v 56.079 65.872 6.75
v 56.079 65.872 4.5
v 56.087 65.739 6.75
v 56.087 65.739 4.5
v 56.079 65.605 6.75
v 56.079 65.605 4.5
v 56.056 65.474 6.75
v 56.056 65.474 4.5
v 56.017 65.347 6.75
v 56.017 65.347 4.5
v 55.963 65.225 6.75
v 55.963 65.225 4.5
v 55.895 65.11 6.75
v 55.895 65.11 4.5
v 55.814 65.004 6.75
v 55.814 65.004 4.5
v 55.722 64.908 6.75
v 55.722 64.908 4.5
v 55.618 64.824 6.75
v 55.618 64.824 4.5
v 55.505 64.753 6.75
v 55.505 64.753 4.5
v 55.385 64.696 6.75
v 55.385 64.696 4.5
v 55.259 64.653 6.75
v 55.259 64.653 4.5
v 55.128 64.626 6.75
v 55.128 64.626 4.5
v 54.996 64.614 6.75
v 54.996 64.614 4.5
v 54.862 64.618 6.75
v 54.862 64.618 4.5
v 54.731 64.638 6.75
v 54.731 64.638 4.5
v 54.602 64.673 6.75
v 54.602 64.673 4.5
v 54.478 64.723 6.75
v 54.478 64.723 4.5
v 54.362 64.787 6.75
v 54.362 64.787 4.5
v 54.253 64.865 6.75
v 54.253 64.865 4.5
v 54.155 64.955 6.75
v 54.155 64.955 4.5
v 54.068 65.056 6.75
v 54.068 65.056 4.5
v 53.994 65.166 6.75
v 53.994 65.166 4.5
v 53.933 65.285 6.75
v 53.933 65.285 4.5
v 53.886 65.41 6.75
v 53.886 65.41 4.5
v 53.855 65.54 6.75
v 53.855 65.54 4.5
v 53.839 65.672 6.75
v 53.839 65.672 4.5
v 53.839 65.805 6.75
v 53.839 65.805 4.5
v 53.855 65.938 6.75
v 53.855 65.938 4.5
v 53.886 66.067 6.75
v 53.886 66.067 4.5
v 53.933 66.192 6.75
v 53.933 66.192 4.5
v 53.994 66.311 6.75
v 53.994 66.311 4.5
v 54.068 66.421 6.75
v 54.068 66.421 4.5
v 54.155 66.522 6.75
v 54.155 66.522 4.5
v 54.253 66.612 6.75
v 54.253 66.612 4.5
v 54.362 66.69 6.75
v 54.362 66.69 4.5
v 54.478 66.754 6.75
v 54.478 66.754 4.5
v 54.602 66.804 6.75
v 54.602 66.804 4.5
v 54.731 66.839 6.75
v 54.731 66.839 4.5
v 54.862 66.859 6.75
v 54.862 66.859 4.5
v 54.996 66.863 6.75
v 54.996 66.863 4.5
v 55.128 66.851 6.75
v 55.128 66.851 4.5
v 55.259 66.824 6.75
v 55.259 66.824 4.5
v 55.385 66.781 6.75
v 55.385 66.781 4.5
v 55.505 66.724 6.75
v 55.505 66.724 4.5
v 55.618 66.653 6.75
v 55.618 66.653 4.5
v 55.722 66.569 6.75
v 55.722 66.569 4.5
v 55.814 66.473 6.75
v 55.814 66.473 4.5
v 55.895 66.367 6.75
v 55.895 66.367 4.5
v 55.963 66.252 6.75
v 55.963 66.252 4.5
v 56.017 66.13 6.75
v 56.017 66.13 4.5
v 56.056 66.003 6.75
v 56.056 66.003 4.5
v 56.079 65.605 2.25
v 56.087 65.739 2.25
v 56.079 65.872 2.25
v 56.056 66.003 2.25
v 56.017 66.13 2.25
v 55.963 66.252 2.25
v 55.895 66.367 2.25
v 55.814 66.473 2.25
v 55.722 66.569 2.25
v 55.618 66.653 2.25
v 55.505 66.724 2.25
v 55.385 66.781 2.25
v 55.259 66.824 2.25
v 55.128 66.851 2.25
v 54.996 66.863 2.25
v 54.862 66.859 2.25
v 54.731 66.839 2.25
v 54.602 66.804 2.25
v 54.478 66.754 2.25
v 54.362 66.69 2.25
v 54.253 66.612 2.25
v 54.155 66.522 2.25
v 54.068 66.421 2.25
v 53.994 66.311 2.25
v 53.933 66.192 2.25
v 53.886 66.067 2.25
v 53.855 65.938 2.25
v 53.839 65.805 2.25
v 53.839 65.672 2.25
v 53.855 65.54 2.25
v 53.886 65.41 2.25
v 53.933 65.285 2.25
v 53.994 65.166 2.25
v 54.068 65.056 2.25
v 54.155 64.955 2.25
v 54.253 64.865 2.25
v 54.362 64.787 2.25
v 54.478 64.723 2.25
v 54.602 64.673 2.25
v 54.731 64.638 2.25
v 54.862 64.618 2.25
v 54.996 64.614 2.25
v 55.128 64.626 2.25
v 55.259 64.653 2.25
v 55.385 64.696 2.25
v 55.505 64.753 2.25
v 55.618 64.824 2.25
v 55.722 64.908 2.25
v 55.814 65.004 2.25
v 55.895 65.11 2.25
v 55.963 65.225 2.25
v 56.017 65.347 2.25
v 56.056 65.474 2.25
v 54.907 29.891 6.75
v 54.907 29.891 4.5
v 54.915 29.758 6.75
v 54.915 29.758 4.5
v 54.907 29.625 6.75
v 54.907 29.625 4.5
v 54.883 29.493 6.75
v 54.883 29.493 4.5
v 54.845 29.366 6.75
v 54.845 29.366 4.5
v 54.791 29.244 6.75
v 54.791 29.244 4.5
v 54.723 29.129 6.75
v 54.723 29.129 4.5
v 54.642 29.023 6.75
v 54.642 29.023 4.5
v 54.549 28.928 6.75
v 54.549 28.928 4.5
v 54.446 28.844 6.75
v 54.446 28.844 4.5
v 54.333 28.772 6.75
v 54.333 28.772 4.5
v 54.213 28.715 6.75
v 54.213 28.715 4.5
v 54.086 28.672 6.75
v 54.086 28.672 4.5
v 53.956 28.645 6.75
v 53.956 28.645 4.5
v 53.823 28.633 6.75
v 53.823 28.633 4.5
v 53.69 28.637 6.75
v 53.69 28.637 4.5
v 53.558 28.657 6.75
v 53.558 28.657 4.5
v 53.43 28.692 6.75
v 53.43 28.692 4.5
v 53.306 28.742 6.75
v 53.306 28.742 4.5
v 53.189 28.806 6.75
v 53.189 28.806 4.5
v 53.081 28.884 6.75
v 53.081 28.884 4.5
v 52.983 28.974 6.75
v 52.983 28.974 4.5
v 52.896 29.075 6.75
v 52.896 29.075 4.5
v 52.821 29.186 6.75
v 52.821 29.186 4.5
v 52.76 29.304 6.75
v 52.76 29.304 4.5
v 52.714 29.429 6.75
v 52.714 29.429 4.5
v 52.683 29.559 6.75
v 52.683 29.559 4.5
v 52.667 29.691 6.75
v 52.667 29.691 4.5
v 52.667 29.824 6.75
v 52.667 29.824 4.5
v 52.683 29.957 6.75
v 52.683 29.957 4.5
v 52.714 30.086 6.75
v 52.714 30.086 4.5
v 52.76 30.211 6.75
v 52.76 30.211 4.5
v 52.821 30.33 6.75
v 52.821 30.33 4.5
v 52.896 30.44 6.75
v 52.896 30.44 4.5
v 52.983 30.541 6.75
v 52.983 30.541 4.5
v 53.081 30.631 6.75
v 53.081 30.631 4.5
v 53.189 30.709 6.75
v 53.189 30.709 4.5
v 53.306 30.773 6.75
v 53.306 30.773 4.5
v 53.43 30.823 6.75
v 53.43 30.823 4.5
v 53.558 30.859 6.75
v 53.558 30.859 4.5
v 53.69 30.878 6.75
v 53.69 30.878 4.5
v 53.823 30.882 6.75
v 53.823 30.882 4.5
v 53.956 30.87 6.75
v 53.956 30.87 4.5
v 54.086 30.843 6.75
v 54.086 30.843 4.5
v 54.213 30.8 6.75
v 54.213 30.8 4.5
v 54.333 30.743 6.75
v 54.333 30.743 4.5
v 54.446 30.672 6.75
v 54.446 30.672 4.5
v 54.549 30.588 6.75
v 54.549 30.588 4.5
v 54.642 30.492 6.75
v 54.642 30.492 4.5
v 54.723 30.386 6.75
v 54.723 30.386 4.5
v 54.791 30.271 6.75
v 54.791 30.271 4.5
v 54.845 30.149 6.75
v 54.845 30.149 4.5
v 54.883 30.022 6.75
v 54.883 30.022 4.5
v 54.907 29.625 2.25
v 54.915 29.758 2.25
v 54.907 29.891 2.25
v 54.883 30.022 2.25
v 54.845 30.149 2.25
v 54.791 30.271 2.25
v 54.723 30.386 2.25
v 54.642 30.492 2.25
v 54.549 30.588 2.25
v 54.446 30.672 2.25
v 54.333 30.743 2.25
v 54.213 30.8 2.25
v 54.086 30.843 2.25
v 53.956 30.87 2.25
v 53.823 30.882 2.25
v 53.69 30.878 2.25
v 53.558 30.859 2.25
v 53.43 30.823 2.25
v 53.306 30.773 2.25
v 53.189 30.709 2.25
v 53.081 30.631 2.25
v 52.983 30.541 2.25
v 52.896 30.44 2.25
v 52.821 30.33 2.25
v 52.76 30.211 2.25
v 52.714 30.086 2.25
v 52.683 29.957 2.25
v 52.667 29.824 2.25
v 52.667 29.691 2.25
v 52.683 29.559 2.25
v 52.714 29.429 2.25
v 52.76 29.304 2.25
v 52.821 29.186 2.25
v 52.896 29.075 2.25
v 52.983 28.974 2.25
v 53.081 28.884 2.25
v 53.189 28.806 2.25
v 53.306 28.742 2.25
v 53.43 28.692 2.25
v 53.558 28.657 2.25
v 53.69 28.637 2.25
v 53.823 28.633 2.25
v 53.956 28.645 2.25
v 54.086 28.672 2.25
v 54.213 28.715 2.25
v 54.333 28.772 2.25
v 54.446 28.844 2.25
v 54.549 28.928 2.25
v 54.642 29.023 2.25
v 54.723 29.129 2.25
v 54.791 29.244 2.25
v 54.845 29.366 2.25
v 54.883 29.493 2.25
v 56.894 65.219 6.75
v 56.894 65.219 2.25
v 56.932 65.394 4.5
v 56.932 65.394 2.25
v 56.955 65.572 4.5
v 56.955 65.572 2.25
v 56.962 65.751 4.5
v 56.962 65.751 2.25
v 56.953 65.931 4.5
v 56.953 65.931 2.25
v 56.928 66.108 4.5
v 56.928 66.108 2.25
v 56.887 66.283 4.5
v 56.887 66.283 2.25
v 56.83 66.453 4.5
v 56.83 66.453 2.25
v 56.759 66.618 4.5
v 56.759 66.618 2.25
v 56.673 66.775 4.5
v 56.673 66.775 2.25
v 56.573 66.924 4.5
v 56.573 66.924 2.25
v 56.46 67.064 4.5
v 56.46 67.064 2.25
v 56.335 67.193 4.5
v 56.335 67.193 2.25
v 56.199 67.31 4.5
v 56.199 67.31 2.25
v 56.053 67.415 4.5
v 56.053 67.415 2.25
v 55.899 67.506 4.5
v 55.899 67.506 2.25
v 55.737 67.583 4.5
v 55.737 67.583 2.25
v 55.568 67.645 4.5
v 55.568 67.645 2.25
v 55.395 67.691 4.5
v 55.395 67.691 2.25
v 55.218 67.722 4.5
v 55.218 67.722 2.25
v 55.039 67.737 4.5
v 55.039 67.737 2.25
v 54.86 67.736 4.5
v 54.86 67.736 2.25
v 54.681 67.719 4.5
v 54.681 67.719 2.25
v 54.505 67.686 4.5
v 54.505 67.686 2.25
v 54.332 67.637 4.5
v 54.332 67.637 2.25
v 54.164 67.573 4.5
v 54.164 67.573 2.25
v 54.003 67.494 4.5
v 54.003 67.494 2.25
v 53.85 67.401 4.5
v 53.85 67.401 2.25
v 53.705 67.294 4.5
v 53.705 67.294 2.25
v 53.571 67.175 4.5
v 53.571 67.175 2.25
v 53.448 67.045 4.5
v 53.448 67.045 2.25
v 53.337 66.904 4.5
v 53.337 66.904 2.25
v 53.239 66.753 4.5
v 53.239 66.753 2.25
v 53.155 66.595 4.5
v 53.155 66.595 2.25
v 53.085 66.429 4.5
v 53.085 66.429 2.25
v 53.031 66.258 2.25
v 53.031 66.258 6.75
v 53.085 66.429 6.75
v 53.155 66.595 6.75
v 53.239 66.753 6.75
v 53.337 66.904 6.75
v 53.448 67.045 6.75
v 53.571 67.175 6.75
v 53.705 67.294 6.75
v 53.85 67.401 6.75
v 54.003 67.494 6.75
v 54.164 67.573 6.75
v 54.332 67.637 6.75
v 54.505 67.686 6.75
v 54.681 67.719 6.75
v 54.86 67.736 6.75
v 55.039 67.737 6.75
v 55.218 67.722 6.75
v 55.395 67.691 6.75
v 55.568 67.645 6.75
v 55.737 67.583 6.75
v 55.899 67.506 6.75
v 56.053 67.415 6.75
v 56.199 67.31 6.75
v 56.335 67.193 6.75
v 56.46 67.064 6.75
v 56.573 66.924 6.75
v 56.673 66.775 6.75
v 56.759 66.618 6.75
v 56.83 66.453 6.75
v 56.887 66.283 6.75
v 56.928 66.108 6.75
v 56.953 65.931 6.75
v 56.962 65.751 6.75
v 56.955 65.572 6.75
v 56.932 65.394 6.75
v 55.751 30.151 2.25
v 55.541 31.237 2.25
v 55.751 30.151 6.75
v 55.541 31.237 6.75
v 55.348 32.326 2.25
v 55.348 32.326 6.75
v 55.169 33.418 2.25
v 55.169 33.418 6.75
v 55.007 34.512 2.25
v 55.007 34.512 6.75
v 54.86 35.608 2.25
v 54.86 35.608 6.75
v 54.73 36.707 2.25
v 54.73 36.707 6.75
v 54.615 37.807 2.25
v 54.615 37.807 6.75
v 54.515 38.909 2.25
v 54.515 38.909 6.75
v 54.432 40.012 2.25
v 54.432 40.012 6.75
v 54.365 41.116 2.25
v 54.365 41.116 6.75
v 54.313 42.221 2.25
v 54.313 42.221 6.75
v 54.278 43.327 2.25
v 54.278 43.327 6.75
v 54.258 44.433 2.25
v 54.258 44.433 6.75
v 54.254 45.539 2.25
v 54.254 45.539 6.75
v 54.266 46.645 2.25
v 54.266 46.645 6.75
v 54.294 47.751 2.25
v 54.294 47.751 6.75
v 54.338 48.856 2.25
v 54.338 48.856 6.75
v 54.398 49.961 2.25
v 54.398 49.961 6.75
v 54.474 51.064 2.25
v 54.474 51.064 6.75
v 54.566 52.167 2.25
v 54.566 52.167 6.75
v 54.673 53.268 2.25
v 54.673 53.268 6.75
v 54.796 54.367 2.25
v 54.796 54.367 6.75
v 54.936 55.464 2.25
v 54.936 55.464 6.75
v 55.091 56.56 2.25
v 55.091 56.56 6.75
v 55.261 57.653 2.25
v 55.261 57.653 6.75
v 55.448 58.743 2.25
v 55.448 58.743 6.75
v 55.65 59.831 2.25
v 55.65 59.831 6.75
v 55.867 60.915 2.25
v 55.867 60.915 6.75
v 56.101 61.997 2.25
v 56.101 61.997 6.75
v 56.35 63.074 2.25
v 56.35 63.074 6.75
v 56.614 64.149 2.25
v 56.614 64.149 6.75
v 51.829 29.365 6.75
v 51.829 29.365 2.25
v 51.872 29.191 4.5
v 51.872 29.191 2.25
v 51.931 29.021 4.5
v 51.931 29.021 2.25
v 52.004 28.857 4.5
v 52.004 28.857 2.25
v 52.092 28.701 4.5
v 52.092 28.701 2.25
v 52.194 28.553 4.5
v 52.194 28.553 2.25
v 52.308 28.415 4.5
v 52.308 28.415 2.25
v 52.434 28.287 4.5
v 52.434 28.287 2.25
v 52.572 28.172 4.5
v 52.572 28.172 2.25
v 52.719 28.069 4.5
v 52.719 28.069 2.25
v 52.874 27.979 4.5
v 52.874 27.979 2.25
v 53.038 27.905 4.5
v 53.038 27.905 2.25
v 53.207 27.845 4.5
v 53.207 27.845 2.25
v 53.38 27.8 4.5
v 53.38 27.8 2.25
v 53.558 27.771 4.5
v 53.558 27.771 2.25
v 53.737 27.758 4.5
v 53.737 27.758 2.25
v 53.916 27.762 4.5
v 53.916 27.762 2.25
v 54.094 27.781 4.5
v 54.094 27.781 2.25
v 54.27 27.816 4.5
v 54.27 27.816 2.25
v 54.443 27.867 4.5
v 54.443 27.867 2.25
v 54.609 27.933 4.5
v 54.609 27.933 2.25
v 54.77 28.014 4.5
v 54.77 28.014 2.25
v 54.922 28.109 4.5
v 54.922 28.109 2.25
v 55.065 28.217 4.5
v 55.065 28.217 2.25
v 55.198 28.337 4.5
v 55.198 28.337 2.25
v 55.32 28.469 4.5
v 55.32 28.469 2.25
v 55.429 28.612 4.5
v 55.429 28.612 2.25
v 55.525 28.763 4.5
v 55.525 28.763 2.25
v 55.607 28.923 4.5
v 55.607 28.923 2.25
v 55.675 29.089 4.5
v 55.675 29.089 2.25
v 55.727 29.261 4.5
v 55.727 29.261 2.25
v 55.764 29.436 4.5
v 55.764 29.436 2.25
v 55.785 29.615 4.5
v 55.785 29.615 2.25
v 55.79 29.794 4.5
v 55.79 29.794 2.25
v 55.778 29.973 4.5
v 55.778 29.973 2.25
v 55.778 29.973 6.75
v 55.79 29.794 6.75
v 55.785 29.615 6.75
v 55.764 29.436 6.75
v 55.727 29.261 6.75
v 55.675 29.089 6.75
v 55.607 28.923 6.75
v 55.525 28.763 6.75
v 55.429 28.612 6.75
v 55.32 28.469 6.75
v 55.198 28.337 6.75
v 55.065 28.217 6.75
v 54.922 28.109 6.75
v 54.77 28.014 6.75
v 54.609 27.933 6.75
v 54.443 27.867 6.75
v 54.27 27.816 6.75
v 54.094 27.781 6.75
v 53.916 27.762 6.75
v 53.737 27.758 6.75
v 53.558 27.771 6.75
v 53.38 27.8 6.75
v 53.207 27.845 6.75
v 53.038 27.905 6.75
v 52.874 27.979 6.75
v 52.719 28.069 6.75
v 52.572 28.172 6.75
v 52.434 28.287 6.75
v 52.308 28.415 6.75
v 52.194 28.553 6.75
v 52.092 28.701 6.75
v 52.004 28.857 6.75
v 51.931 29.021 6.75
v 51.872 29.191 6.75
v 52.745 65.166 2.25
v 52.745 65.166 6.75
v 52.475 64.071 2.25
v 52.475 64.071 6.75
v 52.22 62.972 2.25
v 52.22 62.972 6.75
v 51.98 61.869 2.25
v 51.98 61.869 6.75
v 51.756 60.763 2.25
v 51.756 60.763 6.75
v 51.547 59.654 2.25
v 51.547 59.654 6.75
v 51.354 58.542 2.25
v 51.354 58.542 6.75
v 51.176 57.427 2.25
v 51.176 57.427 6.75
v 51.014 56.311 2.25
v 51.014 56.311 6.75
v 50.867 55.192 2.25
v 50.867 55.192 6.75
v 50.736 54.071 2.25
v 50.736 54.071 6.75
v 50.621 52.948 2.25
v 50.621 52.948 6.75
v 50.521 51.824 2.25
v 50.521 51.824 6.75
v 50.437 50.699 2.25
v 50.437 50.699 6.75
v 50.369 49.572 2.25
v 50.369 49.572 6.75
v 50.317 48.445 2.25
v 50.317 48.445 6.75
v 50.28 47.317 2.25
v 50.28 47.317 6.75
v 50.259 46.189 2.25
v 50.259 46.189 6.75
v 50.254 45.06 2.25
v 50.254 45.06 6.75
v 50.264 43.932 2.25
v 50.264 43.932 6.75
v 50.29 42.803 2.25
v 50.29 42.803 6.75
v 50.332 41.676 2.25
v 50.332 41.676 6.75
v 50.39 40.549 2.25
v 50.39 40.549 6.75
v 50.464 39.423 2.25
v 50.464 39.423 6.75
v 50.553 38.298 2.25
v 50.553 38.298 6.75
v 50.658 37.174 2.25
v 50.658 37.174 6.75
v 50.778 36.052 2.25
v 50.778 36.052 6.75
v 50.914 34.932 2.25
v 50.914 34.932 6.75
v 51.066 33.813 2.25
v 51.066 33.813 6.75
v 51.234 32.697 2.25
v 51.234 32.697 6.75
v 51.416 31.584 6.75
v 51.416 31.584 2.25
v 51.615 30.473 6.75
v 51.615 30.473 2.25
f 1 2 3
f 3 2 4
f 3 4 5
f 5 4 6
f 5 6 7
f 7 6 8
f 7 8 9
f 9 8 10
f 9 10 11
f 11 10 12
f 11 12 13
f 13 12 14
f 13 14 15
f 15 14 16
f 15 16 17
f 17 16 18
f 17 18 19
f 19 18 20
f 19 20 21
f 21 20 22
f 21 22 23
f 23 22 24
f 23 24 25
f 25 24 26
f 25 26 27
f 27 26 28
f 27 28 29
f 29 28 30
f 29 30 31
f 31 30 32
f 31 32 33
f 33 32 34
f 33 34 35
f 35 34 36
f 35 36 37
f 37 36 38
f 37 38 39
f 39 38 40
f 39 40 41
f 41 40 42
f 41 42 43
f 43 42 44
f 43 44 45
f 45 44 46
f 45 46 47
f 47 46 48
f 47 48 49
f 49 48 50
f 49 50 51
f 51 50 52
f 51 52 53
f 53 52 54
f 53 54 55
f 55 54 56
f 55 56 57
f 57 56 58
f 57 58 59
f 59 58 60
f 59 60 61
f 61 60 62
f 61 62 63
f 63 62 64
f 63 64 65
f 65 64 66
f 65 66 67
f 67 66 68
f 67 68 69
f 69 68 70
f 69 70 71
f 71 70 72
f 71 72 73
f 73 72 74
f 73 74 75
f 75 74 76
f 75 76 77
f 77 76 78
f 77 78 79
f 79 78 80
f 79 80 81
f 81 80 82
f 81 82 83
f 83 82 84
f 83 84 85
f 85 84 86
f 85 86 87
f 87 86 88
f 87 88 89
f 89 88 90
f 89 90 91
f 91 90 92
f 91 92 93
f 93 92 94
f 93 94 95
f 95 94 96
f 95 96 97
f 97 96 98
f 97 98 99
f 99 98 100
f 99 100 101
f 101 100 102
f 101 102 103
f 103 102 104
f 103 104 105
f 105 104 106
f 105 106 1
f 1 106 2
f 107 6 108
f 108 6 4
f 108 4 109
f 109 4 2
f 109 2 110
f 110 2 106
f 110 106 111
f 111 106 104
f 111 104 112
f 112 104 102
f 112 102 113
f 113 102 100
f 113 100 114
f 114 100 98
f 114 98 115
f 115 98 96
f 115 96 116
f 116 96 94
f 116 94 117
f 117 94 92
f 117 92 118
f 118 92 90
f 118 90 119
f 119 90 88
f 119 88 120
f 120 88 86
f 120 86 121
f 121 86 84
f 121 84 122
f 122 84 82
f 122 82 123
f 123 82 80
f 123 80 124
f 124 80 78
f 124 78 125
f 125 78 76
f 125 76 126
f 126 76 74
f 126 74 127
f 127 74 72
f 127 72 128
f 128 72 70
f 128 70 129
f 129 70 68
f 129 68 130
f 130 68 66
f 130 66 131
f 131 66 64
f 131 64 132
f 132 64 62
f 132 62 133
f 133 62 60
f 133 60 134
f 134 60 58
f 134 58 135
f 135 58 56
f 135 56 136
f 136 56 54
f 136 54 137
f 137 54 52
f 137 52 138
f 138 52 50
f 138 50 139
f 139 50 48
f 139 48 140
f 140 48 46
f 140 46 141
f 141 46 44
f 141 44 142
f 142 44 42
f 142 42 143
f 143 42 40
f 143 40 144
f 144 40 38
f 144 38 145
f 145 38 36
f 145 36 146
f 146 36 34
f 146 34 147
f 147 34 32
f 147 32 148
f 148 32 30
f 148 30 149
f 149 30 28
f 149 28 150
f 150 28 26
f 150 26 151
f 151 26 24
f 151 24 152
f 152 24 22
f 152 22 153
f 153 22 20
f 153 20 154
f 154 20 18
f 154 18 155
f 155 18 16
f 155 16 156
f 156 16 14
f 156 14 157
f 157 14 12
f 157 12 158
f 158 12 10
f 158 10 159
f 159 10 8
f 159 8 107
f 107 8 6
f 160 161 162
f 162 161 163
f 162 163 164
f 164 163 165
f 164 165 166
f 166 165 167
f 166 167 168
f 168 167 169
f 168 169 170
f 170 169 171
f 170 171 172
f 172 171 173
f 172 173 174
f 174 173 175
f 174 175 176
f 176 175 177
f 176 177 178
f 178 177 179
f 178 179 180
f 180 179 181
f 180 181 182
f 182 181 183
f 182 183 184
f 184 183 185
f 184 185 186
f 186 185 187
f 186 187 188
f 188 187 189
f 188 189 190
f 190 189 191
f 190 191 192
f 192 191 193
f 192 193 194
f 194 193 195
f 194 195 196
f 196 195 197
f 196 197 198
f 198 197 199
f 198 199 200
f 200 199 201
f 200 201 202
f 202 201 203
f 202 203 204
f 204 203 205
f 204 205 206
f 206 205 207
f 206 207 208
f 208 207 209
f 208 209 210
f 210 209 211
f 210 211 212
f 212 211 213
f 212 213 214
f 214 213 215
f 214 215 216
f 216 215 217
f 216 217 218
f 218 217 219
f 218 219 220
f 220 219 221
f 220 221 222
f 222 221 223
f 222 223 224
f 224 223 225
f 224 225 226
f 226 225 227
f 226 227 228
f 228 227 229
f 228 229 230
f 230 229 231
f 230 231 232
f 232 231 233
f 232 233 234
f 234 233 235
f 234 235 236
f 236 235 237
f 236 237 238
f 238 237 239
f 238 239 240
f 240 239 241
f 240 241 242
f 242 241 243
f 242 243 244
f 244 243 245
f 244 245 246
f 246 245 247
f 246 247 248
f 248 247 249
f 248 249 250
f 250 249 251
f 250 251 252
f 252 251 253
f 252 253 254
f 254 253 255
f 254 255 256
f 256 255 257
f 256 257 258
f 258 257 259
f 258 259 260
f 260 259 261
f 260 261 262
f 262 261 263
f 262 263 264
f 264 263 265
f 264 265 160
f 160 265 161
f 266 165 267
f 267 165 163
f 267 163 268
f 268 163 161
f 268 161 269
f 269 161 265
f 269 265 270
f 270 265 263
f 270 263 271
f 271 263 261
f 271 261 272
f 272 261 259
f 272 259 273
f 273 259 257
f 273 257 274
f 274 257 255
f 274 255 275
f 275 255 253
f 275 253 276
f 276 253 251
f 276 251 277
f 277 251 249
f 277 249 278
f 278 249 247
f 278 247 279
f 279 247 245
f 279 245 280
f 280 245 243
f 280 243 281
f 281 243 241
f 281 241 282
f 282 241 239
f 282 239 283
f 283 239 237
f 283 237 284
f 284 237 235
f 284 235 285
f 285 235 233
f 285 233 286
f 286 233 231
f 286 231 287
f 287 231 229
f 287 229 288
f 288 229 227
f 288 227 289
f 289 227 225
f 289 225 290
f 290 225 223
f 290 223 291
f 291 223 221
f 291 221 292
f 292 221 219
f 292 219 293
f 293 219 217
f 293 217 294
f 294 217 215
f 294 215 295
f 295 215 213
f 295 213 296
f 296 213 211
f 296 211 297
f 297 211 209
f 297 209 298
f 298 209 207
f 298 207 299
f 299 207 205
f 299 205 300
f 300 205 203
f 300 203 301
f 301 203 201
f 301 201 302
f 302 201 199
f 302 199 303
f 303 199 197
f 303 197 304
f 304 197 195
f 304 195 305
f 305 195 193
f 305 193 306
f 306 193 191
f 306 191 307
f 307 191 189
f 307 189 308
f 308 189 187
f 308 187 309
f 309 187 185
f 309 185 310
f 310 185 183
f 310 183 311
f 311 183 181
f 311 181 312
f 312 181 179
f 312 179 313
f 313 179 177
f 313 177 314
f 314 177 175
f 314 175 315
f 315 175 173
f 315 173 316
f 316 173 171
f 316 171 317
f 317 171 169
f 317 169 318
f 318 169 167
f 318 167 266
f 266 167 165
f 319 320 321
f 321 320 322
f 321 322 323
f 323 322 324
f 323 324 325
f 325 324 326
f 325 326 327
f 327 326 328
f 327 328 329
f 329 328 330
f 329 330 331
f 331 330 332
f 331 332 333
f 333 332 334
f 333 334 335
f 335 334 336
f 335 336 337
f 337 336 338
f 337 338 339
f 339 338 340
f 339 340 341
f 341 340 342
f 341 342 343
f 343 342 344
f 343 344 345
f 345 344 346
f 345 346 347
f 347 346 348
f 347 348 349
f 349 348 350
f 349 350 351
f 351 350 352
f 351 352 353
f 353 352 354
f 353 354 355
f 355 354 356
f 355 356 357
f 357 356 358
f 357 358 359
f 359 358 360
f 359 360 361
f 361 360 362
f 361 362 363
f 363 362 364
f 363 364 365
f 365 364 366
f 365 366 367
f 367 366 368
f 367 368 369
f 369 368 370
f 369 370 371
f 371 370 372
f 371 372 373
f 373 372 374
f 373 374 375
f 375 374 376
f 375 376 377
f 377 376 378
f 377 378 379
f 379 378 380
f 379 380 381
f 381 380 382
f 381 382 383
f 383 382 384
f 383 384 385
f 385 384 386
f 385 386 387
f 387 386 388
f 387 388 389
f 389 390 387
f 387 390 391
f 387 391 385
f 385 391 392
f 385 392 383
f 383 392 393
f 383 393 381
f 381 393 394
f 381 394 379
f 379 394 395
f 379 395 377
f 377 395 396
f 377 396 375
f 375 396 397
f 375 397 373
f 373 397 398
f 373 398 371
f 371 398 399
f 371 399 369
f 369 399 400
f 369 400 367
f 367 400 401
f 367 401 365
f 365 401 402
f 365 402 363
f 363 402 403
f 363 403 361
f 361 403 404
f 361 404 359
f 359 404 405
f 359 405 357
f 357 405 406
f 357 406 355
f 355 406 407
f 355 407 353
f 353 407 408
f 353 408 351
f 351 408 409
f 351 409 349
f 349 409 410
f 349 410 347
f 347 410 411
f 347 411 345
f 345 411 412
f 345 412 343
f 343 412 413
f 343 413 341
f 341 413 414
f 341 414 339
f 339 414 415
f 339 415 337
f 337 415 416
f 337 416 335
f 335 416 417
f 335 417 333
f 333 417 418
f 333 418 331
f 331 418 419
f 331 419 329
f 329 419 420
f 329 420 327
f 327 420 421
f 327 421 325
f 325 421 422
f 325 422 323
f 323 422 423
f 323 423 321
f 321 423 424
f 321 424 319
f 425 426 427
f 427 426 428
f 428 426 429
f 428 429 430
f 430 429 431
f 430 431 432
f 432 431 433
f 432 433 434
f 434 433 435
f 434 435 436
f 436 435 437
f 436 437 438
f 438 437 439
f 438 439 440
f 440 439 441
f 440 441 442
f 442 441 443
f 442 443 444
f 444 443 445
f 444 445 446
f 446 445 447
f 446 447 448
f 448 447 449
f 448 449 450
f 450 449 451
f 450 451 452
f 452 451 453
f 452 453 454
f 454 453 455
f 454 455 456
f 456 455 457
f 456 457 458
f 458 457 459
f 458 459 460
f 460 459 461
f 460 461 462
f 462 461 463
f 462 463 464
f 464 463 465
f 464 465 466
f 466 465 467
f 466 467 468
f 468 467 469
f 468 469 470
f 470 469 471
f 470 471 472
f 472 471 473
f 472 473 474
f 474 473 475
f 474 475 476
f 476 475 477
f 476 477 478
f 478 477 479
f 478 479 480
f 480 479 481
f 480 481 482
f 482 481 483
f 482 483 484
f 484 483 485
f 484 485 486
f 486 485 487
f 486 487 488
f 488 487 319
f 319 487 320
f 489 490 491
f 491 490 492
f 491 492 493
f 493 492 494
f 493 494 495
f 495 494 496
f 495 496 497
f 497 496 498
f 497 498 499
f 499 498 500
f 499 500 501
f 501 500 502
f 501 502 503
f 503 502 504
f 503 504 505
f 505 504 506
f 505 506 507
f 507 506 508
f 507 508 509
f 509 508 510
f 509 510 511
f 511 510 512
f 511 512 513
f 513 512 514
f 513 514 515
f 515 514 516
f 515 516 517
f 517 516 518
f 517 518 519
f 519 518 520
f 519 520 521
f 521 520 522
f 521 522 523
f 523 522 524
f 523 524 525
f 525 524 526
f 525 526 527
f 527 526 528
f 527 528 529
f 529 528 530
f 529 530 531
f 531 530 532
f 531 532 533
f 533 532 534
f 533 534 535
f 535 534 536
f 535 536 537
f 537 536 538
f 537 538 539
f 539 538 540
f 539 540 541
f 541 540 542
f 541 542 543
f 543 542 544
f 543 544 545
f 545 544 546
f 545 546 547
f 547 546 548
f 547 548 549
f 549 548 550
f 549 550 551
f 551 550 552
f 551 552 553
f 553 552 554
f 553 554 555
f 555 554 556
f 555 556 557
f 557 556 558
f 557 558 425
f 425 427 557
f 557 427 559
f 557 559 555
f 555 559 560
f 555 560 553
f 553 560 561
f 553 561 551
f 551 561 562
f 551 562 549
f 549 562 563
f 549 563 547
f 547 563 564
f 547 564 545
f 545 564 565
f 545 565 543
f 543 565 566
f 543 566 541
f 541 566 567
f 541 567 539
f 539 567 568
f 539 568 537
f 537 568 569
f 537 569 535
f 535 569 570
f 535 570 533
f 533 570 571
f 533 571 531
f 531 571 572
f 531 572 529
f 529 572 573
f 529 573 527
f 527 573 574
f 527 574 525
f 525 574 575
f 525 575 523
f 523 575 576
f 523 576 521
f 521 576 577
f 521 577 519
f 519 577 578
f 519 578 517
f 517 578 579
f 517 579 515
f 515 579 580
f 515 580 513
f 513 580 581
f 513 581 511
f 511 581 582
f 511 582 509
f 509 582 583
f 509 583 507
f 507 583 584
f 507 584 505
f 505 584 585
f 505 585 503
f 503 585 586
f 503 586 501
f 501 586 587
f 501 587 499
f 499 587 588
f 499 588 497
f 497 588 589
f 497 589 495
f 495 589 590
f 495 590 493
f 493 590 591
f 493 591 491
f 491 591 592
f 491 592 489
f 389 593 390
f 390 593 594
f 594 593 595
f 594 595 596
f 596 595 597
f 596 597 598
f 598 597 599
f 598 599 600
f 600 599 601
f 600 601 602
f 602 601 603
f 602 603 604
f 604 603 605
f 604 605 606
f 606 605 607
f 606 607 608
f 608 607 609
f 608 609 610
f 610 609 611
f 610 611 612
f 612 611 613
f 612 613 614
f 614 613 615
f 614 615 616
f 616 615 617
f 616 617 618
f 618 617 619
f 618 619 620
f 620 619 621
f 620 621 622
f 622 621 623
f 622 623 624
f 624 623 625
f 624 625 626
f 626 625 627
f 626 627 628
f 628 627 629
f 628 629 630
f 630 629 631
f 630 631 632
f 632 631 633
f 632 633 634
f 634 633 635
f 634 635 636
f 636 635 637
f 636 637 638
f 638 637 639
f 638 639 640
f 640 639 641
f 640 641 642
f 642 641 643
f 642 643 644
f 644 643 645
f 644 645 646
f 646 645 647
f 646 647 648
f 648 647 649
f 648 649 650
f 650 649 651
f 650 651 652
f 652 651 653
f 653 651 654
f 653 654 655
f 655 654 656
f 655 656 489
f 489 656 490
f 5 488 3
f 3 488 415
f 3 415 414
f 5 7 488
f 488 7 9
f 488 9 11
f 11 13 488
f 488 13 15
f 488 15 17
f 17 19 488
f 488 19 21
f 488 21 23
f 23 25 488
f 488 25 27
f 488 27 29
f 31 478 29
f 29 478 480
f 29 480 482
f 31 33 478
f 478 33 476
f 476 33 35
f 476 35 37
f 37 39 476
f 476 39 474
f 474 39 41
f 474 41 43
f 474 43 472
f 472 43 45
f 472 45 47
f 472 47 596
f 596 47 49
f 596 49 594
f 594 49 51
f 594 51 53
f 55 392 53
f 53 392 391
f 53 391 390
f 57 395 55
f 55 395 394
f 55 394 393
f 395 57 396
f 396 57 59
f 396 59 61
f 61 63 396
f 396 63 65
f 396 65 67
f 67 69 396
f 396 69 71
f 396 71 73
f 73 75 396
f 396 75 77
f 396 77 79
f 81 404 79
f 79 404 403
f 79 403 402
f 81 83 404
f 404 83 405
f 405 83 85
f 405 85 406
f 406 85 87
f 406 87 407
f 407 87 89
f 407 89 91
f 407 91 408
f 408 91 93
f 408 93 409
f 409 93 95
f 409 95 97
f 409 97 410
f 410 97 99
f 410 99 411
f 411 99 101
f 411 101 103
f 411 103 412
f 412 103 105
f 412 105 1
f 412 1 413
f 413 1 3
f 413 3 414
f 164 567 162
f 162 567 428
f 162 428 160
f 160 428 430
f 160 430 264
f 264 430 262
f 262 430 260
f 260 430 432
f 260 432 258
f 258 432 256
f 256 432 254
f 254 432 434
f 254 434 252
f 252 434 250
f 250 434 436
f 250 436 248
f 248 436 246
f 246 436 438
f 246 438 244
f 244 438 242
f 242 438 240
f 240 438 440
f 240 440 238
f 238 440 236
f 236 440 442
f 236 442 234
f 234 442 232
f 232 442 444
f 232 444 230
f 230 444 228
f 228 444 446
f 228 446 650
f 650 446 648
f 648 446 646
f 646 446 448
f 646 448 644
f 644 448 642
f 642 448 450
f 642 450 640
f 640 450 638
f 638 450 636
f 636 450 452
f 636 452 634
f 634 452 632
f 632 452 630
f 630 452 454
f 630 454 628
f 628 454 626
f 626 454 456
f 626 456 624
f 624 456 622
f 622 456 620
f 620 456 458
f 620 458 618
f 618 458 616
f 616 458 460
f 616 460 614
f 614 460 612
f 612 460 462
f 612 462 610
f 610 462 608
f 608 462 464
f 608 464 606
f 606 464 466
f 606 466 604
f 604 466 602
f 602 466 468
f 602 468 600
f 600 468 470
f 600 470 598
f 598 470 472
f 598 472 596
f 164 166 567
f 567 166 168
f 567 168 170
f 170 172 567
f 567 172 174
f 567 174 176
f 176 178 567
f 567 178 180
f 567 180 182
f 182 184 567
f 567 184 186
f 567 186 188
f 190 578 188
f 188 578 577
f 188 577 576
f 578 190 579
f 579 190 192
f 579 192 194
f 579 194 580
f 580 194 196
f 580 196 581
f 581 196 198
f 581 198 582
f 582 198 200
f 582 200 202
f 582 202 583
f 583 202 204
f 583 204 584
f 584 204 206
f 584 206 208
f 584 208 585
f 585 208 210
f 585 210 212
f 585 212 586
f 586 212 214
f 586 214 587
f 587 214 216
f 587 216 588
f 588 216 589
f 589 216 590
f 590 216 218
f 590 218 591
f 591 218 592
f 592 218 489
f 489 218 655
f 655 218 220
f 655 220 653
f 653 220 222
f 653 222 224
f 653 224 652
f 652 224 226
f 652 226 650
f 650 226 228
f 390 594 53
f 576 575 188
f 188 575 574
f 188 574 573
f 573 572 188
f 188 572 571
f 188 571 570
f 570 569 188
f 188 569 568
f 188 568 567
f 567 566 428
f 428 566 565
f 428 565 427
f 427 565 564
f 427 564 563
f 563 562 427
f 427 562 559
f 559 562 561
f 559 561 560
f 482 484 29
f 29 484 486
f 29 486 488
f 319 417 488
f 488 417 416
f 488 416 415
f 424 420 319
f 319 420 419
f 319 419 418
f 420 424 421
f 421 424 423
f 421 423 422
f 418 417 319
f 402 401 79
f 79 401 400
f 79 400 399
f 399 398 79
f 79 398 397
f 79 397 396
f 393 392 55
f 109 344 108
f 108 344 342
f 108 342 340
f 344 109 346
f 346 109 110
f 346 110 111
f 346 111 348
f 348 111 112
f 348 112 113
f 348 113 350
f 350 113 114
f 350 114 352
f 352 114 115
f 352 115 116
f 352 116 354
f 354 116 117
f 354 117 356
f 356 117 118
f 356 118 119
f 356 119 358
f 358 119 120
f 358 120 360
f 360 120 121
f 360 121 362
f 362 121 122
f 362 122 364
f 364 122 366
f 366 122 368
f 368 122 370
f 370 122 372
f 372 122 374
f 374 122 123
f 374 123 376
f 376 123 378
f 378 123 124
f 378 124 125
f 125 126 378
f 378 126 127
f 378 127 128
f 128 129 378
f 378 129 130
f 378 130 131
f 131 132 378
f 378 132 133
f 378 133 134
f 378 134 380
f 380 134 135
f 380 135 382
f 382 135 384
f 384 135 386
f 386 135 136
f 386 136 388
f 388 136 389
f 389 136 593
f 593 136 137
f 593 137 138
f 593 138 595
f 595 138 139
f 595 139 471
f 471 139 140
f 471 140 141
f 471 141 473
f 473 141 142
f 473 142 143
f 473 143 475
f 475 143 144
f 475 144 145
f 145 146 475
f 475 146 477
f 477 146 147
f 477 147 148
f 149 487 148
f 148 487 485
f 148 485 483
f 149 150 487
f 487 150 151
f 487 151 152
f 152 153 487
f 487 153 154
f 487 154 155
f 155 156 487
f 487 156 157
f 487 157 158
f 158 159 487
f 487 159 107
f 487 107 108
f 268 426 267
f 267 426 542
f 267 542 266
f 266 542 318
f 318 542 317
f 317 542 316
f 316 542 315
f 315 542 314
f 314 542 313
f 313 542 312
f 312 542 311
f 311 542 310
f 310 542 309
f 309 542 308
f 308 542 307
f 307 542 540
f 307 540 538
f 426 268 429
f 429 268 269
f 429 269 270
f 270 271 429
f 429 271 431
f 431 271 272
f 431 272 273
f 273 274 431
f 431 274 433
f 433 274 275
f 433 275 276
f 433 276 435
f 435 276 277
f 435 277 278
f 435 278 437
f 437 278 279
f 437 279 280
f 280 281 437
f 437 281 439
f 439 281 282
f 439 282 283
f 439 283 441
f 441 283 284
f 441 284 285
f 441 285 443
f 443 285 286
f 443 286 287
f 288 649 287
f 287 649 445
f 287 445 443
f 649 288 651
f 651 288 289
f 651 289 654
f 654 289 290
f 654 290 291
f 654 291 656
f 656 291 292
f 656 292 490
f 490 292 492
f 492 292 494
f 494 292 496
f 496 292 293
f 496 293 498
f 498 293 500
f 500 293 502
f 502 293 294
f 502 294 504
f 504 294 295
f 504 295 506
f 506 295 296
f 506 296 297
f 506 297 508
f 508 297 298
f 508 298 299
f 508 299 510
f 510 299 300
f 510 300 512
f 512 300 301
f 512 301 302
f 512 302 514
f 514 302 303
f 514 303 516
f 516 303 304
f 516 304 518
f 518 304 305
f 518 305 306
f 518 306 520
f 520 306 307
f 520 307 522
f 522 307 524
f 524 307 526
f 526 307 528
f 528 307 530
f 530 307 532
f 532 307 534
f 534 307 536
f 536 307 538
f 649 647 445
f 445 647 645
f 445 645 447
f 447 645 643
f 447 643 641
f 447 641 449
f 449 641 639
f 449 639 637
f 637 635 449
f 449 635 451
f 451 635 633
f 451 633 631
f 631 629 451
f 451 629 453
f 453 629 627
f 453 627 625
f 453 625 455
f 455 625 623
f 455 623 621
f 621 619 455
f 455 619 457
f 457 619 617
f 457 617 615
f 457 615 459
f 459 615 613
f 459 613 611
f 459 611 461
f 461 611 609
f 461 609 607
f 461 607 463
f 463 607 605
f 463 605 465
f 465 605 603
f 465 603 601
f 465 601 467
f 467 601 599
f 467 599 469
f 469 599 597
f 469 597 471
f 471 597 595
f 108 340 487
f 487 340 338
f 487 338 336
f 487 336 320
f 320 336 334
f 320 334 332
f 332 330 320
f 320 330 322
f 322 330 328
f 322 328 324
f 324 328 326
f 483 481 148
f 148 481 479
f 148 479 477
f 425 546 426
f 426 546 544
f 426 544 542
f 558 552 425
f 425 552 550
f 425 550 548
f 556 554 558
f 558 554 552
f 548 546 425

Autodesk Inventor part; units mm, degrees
ref_plane "YZ Plane" through (0, 0, 0) normal (1, 0, 0) x (0, 1, 0)
ref_plane "XZ Plane" through (0, 0, 0) normal (0, 1, 0) x (-1, 0, 0)
ref_plane "XY Plane" through (0, 0, 0) normal (0, 0, 1) x (1, 0, 0)
sketch "Sketch1" plane through (0, 0, 0) normal (0, 0, 1) x (1, 0, 0)
  circle A0 centre (-23.5281, 14.2673) radius 2.25 projected
  circle A1 centre (-21.1834, 86.2291) radius 2.25 projected
  arc A2 (-21.1834, 86.2291) -> (-23.5281, 14.2673) centre (131.108, 45.2479) ccw construction
  arc A3 (-25.046, 87.2685) -> (-27.4502, 13.4815) centre (131.108, 45.2479) ccw
  arc A4 (-17.3208, 85.1897) -> (-19.6061, 15.053) centre (131.108, 45.2479) ccw
  arc A5 (-17.3208, 85.1897) -> (-25.046, 87.2685) centre (-21.1834, 86.2291) ccw
  arc A6 (-27.4502, 13.4815) -> (-19.6061, 15.053) centre (-23.5281, 14.2673) ccw
  point P0 (0, 0)
  dimension "d0" = 8
extrude "Extrusion1" add sketch "Sketch1" along normal blind 9
scale "Scale1" factors (0.5, 0.5, 0.5) then translate (65.554, 22.624, 2.25) bodies 1
properties part number "MasiveBone2"
